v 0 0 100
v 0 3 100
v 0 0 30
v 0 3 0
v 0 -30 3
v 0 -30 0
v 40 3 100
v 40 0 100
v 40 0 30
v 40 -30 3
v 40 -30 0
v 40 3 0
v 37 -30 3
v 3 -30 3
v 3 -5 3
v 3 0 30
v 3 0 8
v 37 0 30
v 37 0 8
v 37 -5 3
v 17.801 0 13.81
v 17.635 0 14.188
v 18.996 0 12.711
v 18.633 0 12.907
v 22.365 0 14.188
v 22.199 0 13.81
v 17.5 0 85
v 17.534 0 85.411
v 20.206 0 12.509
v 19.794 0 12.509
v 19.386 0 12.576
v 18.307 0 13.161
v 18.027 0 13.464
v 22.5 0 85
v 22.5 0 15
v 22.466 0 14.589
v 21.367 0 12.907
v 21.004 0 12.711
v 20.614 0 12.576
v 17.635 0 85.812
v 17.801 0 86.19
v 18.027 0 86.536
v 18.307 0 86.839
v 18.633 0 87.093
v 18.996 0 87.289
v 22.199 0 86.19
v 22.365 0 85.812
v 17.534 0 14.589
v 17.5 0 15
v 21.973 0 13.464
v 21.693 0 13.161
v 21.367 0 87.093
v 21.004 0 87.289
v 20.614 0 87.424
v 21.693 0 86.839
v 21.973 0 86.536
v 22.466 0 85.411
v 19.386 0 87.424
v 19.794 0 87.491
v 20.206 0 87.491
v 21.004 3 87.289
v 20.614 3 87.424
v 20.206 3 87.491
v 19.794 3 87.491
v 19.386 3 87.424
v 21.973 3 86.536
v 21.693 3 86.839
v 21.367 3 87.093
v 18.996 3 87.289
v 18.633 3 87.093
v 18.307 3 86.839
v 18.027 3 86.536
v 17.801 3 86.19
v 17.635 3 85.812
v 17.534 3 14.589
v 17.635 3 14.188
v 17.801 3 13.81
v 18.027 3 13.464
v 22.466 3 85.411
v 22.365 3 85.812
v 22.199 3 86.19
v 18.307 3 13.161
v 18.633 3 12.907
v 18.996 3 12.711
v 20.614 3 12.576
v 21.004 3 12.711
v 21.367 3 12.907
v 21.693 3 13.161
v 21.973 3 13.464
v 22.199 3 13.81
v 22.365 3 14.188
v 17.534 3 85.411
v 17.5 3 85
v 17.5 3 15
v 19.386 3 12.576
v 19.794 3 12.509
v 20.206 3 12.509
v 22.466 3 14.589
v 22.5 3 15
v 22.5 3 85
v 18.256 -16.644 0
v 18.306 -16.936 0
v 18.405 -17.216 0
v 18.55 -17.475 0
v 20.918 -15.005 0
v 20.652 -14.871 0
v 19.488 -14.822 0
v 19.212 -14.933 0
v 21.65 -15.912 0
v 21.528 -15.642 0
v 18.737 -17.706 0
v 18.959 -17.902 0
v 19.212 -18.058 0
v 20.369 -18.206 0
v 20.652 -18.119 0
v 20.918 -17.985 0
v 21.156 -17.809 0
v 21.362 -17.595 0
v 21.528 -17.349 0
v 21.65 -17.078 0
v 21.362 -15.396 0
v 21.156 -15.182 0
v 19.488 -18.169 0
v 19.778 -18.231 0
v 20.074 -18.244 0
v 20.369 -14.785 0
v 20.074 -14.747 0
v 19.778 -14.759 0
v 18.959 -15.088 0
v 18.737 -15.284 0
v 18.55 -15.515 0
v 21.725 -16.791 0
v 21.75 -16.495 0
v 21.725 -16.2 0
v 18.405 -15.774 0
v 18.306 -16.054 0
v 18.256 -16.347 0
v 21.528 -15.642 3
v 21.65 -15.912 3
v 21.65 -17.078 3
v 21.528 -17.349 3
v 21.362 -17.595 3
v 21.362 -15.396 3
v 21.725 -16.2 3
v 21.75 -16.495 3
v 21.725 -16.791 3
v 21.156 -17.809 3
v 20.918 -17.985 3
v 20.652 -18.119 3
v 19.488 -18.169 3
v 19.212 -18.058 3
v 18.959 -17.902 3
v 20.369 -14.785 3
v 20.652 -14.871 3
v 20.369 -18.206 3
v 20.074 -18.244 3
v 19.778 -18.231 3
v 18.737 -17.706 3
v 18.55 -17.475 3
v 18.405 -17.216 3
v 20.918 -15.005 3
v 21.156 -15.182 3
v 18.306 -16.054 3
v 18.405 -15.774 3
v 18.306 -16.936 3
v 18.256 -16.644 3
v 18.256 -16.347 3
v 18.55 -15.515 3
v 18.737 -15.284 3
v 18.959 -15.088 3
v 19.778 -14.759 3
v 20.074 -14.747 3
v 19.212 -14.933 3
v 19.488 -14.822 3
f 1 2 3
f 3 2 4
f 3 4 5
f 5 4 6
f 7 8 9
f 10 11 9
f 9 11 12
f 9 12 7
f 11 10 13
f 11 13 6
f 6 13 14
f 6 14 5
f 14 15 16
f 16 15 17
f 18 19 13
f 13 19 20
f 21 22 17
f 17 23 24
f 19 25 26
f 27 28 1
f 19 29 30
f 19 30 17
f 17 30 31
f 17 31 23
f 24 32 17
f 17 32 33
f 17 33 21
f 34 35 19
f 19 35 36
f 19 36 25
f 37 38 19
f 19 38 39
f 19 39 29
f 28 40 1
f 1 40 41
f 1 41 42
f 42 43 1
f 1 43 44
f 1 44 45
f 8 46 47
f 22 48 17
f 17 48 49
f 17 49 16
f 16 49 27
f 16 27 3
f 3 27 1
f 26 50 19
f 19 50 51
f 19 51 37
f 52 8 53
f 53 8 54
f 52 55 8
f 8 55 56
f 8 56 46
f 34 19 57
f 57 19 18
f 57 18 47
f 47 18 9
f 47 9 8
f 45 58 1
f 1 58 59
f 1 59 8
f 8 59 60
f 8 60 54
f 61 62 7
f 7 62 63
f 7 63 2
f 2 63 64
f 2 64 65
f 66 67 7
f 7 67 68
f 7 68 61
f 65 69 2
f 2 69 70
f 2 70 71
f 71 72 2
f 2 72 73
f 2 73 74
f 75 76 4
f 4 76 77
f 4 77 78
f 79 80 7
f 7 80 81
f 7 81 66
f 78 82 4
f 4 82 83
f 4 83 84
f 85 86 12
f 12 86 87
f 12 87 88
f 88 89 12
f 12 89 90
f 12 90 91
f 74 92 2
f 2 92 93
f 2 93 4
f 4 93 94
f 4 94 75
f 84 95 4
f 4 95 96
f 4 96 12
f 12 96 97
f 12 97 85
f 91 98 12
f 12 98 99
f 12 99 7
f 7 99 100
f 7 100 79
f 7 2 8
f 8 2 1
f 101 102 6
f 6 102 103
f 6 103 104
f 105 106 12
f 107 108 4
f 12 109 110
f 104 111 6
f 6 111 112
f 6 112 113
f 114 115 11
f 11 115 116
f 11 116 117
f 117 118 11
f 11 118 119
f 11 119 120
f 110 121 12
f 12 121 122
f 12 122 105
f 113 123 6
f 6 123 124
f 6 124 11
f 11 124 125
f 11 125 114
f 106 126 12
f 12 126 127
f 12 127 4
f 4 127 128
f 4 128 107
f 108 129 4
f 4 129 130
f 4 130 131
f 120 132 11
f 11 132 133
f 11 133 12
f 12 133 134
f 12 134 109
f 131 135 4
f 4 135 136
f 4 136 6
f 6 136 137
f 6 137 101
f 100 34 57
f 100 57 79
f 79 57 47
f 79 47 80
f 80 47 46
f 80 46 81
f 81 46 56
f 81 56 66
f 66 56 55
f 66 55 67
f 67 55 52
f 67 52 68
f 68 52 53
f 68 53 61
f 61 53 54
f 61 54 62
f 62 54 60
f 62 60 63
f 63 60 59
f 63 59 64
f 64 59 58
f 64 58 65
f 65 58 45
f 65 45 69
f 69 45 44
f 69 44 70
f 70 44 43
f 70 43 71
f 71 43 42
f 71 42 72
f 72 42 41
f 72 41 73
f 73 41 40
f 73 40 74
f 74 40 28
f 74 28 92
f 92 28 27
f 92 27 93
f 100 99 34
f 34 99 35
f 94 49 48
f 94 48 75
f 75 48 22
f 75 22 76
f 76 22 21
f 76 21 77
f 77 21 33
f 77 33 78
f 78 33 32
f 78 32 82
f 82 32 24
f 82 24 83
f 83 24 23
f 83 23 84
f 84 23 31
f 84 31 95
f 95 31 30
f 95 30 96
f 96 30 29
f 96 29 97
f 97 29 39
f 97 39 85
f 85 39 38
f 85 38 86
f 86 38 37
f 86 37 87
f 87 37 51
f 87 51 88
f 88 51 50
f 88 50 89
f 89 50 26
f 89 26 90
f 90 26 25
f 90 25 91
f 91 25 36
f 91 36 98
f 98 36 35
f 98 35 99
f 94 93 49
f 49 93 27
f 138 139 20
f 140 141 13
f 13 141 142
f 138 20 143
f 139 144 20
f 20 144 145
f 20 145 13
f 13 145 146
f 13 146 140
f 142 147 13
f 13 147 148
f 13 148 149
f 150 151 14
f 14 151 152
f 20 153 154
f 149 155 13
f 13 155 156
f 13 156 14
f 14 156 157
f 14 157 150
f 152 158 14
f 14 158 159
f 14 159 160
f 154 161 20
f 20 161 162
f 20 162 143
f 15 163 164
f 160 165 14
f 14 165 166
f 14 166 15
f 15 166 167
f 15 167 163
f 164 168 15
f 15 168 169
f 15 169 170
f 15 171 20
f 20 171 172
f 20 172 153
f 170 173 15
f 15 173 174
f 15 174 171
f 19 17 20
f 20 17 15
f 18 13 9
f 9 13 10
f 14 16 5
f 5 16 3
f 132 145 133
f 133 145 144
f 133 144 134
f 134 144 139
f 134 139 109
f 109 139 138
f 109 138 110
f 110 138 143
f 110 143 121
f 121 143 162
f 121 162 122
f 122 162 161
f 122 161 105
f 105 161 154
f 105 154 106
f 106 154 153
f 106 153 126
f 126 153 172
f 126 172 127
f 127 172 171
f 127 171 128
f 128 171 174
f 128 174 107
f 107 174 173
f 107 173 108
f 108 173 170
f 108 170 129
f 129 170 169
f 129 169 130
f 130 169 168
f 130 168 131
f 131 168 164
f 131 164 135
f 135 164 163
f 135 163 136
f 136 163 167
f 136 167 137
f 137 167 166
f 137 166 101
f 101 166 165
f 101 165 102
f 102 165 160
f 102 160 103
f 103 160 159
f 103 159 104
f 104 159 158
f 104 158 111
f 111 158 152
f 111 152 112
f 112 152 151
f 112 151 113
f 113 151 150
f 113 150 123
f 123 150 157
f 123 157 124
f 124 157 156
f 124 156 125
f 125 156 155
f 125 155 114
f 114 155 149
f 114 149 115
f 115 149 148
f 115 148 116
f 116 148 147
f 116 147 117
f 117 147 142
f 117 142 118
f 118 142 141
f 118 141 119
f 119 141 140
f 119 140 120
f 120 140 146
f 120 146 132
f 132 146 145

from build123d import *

# Parameters (mm, degrees)
SKETCH1_W               = 40
SKETCH1_H               = 100
BOSS_EXTRUDE1_DEPTH     = 3
SKETCH2_W               = 40
SKETCH2_H               = 3
BOSS_EXTRUDE2_DEPTH     = 30
CHAMFER1_SIZE           = 5
SKETCH3_W               = 3
SKETCH3_H               = 33
BOSS_EXTRUDE3_DEPTH     = 30
CUT_EXTRUDE1_DEPTH      = 50
CUT_EXTRUDE1_DEPTH_BACK = 30
SKETCH5_R               = 1.75
CUT_EXTRUDE2_DEPTH      = 30


with BuildPart() as part:
    # Sketch1 → Boss-Extrude1 (new body)
    with BuildSketch(Plane(origin=(0, 0, 0), x_dir=(1, 0, 0), z_dir=(0, 1, 0))):
        with Locations((20, -50)):
            Rectangle(SKETCH1_W, SKETCH1_H)
        with BuildLine():
            Line((17.5, -85), (17.5, -15))
            ThreePointArc((17.5, -15), (20, -12.5), (22.5, -15))
            Line((22.5, -15), (22.5, -85))
            ThreePointArc((22.5, -85), (20, -87.5), (17.5, -85))
        make_face(mode=Mode.SUBTRACT)
    extrude(amount=BOSS_EXTRUDE1_DEPTH)

    # Sketch2 → Boss-Extrude2 (add)
    with BuildSketch(Plane.XZ):
        with Locations((20, 1.5)):
            Rectangle(SKETCH2_W, SKETCH2_H)
    extrude(amount=BOSS_EXTRUDE2_DEPTH)

    # Chamfer1
    chamfer1_edges = [part.edges().sort_by_distance(p)[0] for p in [
        (20, 0, 3),
    ]]
    chamfer(chamfer1_edges, length=CHAMFER1_SIZE)

    # Sketch3 → Boss-Extrude3 (add)
    with BuildSketch(Plane(origin=(0, 0, 0), x_dir=(-1, 0, 0), z_dir=(0, 0, -1))):
        with Locations((-1.5, -13.5)):
            Rectangle(SKETCH3_W, SKETCH3_H)
        with Locations((-38.5, -13.5)):
            Rectangle(SKETCH3_W, SKETCH3_H)
    extrude(amount=-BOSS_EXTRUDE3_DEPTH)

    # Sketch4 → Cut-Extrude1 (cut, two sides: drawn at the far end of the back side and taken through both)
    with BuildSketch(Plane(origin=(3, 0, 0), x_dir=(0, 0, -1), z_dir=(1, 0, 0)).offset(-CUT_EXTRUDE1_DEPTH_BACK)):
        Polygon((-30, 0), (-3, -30), (-30, -30), align=None)
    extrude(amount=CUT_EXTRUDE1_DEPTH + CUT_EXTRUDE1_DEPTH_BACK, mode=Mode.SUBTRACT)

    # Sketch5 → Cut-Extrude2 (cut)
    with BuildSketch(Plane.XY.offset(3)):
        with Locations((20, -16.495296504)):
            Circle(SKETCH5_R)
    extrude(amount=-CUT_EXTRUDE2_DEPTH, mode=Mode.SUBTRACT)


solid = part.part
